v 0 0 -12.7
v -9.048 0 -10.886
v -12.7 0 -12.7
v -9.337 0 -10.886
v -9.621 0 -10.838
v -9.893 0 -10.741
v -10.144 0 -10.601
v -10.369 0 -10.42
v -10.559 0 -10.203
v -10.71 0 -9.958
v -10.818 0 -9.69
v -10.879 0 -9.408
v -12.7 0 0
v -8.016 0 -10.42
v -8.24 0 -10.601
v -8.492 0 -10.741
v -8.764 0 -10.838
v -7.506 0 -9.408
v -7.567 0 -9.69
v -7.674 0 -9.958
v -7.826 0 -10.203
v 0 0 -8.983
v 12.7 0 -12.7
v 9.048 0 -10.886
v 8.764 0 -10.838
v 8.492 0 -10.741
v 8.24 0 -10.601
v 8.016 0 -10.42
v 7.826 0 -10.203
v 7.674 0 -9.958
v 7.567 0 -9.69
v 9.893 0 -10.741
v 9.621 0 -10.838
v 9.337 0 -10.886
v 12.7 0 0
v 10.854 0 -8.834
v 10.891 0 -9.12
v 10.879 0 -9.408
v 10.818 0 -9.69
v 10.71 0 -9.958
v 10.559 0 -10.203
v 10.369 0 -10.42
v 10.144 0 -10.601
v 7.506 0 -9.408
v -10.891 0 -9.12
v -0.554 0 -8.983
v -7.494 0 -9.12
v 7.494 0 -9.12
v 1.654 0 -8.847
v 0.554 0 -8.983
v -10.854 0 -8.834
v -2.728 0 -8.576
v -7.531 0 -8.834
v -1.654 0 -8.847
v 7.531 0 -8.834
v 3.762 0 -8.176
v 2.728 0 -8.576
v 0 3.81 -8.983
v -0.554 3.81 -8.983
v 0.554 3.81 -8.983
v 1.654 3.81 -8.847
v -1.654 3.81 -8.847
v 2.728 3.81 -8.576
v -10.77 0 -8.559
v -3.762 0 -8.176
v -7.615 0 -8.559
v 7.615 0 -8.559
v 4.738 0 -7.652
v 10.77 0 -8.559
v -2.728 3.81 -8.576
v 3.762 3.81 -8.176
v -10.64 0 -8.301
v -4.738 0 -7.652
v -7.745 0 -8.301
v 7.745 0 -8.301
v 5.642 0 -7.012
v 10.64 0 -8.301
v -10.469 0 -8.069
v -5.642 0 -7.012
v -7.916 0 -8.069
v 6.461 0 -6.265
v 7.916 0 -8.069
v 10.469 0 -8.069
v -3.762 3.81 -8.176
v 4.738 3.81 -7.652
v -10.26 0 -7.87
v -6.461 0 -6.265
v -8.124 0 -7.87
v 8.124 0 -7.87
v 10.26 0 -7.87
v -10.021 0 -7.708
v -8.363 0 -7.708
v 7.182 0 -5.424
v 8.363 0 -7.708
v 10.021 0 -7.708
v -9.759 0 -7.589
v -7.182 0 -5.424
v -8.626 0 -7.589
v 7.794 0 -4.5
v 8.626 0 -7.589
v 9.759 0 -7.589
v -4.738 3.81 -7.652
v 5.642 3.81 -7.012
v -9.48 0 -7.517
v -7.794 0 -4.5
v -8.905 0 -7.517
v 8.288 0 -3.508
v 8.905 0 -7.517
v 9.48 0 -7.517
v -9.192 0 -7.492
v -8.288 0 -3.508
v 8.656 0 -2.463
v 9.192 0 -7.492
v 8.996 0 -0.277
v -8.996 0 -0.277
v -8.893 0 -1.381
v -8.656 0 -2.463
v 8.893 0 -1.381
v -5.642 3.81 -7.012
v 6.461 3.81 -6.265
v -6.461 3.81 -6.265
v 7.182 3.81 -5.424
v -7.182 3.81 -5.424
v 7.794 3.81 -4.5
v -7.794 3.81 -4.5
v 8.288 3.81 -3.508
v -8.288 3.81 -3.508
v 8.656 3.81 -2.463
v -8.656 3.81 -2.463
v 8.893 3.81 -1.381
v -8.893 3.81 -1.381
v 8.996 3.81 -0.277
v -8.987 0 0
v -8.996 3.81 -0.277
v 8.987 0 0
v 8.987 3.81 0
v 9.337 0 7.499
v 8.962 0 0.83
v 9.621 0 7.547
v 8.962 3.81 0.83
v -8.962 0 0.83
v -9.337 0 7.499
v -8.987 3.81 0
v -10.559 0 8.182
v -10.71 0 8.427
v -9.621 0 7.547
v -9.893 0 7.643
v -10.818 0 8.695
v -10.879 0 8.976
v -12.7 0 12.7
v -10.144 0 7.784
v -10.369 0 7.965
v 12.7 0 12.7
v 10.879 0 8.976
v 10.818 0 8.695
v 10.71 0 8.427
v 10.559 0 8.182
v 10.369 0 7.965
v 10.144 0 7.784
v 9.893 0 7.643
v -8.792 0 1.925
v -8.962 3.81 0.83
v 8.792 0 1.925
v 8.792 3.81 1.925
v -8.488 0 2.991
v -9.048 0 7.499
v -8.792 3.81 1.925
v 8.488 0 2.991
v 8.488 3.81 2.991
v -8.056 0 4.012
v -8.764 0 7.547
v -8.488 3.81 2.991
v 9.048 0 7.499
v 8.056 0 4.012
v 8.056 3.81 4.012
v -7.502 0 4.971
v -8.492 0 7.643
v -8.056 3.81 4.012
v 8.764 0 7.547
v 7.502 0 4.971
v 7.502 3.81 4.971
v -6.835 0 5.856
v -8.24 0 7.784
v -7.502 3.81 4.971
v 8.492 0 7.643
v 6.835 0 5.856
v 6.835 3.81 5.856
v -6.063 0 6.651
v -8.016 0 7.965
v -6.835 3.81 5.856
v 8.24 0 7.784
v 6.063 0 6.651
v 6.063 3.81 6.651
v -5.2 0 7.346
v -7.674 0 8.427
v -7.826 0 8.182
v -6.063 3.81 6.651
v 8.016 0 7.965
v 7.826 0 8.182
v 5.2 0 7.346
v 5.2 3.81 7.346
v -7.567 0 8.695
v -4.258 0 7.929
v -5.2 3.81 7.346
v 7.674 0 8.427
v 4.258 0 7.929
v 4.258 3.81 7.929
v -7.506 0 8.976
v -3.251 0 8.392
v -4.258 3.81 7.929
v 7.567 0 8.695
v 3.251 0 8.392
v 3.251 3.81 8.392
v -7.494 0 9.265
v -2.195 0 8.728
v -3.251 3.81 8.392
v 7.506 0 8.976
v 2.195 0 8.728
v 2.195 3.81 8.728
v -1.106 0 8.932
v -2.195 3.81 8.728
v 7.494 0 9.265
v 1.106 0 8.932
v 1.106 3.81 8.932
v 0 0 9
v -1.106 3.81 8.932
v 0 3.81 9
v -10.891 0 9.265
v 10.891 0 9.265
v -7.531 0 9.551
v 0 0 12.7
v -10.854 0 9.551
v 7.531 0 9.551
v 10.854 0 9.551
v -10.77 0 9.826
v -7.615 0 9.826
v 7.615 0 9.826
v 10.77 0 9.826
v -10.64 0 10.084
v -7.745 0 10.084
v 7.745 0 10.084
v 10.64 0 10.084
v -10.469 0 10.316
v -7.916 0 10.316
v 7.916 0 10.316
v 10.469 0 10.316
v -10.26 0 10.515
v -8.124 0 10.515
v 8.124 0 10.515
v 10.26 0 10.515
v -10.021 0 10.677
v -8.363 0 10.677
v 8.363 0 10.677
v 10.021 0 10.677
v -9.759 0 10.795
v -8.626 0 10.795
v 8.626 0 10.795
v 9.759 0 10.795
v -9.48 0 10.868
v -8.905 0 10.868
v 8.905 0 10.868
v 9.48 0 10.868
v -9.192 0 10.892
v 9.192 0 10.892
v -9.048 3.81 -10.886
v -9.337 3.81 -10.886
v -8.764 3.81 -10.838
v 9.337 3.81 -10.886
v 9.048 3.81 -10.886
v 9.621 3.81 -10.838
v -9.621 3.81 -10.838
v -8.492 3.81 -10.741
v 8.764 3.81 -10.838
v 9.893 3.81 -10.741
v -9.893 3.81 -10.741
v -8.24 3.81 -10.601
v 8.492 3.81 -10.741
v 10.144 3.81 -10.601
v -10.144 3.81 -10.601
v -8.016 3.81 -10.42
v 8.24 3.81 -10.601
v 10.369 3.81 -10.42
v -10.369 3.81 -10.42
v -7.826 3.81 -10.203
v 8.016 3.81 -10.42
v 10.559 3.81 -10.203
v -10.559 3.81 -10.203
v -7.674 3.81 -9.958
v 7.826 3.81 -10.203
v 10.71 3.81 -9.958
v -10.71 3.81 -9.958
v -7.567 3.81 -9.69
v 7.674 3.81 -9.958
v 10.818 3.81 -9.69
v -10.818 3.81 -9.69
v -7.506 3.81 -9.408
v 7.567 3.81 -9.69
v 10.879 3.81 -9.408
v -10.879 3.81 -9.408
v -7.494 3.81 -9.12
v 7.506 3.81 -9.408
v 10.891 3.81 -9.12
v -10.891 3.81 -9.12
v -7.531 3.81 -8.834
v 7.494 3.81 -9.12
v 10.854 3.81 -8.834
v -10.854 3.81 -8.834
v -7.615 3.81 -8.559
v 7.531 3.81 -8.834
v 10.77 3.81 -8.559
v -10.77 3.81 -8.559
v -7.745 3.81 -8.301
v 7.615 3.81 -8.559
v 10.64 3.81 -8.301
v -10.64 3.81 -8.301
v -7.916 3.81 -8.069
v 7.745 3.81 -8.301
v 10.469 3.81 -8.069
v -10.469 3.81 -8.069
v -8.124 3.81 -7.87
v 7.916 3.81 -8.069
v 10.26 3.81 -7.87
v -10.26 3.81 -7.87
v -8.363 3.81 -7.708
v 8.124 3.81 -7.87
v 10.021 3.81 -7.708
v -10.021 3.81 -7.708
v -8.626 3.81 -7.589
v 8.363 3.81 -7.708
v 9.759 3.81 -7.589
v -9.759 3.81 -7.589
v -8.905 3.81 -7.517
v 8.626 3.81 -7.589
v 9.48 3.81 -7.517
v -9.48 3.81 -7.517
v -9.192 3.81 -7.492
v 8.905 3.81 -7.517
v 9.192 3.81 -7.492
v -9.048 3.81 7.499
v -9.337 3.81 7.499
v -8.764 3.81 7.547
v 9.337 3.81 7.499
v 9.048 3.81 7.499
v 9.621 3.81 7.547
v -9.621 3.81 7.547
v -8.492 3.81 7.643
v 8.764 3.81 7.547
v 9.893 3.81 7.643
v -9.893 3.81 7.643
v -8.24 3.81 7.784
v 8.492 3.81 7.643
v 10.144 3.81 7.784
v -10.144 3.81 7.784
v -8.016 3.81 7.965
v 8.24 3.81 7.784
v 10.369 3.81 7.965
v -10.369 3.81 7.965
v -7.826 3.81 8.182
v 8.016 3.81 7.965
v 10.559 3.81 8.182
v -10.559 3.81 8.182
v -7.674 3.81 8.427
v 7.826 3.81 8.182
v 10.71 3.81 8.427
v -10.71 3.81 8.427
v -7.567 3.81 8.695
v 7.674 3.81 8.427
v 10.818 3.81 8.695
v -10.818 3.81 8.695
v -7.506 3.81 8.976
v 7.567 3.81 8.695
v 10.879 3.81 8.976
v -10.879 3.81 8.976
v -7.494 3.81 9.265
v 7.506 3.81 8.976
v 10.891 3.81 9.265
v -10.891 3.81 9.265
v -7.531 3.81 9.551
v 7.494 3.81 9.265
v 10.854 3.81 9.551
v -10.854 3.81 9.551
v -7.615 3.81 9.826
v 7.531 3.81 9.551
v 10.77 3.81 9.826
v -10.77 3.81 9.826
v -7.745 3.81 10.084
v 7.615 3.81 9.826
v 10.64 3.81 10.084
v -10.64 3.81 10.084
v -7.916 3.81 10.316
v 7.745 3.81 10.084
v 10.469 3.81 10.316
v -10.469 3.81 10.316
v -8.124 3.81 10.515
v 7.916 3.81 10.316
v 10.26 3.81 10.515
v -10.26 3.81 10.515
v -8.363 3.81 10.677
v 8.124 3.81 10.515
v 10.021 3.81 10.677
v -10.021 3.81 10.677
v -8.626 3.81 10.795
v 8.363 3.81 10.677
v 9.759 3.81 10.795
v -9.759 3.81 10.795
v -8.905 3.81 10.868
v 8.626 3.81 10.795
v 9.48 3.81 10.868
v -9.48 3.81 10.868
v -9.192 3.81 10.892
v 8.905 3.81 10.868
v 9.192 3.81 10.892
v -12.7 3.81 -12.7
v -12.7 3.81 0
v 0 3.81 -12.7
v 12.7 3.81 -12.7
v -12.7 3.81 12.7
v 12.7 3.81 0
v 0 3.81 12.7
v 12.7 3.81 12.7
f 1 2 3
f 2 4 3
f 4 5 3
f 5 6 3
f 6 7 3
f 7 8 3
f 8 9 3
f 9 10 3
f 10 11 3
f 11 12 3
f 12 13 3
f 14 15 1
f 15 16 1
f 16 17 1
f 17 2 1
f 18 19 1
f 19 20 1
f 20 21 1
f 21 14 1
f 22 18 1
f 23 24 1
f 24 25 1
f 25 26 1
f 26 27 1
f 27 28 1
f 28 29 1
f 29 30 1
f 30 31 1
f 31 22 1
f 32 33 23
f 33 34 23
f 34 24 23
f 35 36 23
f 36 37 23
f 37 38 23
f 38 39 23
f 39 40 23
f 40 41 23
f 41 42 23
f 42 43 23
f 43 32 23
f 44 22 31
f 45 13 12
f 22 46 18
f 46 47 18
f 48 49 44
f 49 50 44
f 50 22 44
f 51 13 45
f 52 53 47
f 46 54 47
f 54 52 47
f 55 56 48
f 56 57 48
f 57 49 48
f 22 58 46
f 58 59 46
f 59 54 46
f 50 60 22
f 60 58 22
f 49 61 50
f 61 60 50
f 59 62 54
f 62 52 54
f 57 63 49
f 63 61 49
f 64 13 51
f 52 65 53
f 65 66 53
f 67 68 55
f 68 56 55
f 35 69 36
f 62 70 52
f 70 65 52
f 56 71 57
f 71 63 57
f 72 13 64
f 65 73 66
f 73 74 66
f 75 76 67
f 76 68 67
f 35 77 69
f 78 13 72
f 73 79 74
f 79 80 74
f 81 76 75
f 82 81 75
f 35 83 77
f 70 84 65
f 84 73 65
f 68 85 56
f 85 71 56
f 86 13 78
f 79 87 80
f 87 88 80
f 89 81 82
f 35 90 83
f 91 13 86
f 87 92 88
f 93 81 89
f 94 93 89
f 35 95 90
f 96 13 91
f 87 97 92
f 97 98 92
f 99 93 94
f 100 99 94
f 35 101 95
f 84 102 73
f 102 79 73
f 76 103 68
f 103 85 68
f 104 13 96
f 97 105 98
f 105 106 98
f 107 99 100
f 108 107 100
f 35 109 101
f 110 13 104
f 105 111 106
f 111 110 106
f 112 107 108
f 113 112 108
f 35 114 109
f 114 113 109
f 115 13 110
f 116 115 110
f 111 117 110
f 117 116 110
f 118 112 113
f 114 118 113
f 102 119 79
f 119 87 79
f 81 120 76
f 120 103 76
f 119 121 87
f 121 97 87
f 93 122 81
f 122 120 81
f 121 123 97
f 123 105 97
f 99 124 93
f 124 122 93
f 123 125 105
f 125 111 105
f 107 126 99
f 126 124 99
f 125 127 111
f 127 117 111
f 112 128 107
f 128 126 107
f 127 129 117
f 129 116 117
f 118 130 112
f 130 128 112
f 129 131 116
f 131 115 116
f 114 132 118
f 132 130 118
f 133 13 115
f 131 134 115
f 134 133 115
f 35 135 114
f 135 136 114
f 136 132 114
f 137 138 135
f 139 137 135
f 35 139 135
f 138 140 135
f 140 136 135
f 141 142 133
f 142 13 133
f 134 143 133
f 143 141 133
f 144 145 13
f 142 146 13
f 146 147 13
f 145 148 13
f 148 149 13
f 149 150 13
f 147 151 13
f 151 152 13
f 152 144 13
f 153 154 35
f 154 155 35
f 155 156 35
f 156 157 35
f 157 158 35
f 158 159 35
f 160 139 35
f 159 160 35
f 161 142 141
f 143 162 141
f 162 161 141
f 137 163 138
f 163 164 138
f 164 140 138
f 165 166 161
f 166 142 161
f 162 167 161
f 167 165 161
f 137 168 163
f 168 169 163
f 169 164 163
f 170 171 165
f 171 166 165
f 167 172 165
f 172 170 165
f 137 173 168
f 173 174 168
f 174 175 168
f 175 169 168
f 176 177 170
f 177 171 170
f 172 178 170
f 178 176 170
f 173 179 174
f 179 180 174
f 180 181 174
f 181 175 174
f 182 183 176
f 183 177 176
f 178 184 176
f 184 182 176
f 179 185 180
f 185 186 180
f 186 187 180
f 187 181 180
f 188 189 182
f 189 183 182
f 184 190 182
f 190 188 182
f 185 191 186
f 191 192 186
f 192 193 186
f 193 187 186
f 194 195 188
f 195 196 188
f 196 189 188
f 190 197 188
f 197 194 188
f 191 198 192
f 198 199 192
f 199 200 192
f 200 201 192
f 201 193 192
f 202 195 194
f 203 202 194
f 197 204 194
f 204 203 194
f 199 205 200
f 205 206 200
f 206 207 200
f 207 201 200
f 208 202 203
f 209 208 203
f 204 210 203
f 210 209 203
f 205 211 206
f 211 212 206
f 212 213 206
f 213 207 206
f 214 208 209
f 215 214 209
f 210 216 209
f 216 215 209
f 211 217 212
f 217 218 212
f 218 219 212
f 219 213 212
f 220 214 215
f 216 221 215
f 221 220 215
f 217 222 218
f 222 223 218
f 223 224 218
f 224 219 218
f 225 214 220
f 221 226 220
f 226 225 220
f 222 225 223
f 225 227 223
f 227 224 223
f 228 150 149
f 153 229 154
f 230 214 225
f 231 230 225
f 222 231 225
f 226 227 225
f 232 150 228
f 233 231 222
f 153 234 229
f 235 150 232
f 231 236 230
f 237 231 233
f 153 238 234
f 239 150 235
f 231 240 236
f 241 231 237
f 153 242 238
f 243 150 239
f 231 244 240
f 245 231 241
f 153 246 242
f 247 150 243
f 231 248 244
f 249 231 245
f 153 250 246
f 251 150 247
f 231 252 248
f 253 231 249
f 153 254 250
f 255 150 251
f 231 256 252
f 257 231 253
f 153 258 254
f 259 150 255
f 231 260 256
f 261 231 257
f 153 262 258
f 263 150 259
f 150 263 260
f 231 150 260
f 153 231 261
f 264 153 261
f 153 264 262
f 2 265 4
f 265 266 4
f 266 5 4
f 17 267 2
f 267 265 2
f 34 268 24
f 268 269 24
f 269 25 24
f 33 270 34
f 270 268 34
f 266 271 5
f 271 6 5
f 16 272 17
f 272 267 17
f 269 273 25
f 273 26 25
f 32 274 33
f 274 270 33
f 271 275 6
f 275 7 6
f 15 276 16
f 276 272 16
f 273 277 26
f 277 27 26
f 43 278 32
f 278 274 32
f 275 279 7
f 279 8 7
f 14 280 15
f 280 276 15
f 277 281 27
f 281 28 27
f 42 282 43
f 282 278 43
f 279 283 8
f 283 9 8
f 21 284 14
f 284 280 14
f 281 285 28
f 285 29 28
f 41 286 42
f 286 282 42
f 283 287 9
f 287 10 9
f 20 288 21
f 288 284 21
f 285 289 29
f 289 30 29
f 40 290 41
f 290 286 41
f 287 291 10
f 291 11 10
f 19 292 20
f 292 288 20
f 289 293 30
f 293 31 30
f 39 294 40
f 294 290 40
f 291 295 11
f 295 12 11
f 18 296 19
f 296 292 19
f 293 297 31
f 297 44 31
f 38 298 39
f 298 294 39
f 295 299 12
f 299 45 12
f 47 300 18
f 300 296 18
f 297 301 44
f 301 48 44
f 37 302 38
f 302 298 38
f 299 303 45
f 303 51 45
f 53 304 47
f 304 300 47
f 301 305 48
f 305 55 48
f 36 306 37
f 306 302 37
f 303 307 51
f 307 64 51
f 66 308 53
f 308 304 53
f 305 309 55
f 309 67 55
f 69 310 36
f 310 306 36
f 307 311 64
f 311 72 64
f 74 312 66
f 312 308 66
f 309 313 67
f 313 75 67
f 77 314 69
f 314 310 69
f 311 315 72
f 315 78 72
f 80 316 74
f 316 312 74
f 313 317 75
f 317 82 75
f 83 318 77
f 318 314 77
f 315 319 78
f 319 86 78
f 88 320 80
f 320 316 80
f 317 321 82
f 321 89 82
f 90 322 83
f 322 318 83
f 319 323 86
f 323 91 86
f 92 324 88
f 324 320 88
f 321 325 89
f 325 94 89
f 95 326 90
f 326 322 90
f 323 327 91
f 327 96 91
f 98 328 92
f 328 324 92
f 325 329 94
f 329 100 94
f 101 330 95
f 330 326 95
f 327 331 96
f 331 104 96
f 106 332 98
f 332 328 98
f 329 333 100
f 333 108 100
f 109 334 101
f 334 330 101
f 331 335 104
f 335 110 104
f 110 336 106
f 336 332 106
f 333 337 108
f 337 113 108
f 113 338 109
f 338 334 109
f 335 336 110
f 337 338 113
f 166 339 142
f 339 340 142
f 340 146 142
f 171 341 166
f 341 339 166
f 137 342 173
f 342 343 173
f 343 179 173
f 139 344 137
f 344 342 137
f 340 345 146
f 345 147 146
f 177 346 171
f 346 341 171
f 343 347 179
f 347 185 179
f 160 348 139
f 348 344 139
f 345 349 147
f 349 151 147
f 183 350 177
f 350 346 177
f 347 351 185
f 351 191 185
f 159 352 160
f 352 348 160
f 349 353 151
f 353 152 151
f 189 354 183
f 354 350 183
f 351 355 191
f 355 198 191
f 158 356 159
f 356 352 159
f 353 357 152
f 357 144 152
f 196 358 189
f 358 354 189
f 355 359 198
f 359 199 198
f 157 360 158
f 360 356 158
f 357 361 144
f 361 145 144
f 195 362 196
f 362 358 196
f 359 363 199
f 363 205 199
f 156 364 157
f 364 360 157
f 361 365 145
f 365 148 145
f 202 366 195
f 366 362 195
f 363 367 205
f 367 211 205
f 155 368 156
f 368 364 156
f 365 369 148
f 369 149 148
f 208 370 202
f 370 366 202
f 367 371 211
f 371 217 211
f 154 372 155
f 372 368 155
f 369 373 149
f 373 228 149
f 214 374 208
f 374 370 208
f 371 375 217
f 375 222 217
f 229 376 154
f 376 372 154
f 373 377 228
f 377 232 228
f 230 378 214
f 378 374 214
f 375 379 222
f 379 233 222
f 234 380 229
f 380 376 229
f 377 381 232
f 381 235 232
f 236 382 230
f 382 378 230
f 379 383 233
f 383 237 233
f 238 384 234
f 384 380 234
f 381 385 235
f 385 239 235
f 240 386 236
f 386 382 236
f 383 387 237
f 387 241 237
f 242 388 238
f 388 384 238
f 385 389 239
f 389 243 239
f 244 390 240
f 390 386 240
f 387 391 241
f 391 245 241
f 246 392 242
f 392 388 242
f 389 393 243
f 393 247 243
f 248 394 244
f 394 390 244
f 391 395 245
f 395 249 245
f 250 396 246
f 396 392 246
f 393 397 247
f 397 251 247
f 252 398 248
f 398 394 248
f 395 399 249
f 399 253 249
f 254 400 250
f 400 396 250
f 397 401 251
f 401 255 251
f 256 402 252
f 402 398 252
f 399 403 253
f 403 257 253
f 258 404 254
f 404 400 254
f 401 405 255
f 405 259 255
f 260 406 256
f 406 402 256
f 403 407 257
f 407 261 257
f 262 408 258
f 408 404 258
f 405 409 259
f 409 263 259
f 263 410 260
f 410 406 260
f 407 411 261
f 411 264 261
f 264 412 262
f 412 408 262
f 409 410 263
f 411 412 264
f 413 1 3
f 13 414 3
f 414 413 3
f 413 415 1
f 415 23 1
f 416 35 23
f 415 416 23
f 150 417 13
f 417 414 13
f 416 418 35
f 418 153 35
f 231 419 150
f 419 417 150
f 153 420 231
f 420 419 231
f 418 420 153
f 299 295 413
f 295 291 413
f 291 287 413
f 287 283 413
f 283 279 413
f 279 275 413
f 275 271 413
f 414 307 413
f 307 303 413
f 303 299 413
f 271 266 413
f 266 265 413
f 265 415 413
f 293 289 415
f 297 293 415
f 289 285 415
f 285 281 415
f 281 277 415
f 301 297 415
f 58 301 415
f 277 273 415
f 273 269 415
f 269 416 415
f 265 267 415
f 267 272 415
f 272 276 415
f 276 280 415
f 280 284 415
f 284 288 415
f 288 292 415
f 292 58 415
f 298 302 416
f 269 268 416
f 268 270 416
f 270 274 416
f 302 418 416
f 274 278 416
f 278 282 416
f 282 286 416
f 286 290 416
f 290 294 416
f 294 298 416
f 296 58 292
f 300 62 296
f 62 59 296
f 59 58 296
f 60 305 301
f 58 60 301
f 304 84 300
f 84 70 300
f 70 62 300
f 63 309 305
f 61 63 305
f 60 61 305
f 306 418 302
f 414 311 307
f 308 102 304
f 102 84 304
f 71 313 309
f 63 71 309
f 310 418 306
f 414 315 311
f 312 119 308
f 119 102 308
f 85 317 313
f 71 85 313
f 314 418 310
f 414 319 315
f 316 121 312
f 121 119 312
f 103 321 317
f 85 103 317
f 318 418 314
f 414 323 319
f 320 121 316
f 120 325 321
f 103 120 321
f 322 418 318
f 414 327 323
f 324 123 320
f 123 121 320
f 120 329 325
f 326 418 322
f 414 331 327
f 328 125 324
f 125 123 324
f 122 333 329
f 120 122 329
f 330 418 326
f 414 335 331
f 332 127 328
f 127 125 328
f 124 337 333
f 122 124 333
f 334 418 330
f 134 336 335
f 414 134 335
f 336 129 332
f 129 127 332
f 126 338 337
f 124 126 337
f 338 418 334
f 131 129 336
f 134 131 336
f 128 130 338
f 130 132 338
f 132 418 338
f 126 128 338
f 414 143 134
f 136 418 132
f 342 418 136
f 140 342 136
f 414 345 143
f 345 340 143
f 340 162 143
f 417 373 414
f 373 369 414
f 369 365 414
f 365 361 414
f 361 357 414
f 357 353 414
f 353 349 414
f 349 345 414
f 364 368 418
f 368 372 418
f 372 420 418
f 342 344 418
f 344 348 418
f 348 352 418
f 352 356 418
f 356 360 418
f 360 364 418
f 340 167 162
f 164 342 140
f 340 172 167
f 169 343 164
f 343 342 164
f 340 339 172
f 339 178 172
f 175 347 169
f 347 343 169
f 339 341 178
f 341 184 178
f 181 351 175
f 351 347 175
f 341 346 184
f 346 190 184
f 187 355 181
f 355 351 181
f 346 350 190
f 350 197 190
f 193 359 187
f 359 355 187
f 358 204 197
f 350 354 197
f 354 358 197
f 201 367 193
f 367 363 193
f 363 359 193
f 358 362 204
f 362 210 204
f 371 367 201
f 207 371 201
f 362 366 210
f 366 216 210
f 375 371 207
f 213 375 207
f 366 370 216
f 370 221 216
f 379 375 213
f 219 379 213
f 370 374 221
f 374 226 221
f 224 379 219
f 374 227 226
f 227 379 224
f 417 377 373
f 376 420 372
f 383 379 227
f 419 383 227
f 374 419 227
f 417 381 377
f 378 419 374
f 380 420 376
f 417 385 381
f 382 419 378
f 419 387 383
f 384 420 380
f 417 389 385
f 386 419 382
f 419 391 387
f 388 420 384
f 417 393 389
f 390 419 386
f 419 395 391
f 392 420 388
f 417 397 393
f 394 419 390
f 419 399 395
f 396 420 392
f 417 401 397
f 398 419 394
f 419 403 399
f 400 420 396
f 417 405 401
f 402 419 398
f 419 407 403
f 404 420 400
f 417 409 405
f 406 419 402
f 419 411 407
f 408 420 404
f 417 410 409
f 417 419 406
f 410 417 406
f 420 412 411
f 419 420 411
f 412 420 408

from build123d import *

# Parameters (mm, degrees)
SKETCH2_W            = 25.4
SKETCH2_H            = 25.4
BOSS_EXTRUDE1_DEPTH  = 3.81
SKETCH4_R            = 9
CUT_EXTRUDE1_DEPTH   = 4.81
M3_CLEARANCE_HOLE2_D = 3.4


with BuildPart() as part:
    # Sketch2 → Boss-Extrude1 (new body)
    with BuildSketch(Plane(origin=(0, 0, 0), x_dir=(1, 0, 0), z_dir=(0, 1, 0))):
        Rectangle(SKETCH2_W, SKETCH2_H)
    extrude(amount=BOSS_EXTRUDE1_DEPTH)

    # Sketch4 → Cut-Extrude1 (cut, through all)
    with BuildSketch(Plane(origin=(0, 3.81, 0), x_dir=(1, 0, 0), z_dir=(0, 1, 0))):
        Circle(SKETCH4_R)
    extrude(amount=-CUT_EXTRUDE1_DEPTH, mode=Mode.SUBTRACT)

    # M3 Clearance Hole2 (through all)
    with Locations(Plane(origin=(-9.192388155, 3.81, -9.192388155), x_dir=(0, 0, 1), z_dir=(0, 1, 0))):
        with Locations((0, 0), (18.38477631, 18.38477631), (0, 18.38477631), (18.38477631, 0)):
            Hole(M3_CLEARANCE_HOLE2_D / 2)


solid = part.part
